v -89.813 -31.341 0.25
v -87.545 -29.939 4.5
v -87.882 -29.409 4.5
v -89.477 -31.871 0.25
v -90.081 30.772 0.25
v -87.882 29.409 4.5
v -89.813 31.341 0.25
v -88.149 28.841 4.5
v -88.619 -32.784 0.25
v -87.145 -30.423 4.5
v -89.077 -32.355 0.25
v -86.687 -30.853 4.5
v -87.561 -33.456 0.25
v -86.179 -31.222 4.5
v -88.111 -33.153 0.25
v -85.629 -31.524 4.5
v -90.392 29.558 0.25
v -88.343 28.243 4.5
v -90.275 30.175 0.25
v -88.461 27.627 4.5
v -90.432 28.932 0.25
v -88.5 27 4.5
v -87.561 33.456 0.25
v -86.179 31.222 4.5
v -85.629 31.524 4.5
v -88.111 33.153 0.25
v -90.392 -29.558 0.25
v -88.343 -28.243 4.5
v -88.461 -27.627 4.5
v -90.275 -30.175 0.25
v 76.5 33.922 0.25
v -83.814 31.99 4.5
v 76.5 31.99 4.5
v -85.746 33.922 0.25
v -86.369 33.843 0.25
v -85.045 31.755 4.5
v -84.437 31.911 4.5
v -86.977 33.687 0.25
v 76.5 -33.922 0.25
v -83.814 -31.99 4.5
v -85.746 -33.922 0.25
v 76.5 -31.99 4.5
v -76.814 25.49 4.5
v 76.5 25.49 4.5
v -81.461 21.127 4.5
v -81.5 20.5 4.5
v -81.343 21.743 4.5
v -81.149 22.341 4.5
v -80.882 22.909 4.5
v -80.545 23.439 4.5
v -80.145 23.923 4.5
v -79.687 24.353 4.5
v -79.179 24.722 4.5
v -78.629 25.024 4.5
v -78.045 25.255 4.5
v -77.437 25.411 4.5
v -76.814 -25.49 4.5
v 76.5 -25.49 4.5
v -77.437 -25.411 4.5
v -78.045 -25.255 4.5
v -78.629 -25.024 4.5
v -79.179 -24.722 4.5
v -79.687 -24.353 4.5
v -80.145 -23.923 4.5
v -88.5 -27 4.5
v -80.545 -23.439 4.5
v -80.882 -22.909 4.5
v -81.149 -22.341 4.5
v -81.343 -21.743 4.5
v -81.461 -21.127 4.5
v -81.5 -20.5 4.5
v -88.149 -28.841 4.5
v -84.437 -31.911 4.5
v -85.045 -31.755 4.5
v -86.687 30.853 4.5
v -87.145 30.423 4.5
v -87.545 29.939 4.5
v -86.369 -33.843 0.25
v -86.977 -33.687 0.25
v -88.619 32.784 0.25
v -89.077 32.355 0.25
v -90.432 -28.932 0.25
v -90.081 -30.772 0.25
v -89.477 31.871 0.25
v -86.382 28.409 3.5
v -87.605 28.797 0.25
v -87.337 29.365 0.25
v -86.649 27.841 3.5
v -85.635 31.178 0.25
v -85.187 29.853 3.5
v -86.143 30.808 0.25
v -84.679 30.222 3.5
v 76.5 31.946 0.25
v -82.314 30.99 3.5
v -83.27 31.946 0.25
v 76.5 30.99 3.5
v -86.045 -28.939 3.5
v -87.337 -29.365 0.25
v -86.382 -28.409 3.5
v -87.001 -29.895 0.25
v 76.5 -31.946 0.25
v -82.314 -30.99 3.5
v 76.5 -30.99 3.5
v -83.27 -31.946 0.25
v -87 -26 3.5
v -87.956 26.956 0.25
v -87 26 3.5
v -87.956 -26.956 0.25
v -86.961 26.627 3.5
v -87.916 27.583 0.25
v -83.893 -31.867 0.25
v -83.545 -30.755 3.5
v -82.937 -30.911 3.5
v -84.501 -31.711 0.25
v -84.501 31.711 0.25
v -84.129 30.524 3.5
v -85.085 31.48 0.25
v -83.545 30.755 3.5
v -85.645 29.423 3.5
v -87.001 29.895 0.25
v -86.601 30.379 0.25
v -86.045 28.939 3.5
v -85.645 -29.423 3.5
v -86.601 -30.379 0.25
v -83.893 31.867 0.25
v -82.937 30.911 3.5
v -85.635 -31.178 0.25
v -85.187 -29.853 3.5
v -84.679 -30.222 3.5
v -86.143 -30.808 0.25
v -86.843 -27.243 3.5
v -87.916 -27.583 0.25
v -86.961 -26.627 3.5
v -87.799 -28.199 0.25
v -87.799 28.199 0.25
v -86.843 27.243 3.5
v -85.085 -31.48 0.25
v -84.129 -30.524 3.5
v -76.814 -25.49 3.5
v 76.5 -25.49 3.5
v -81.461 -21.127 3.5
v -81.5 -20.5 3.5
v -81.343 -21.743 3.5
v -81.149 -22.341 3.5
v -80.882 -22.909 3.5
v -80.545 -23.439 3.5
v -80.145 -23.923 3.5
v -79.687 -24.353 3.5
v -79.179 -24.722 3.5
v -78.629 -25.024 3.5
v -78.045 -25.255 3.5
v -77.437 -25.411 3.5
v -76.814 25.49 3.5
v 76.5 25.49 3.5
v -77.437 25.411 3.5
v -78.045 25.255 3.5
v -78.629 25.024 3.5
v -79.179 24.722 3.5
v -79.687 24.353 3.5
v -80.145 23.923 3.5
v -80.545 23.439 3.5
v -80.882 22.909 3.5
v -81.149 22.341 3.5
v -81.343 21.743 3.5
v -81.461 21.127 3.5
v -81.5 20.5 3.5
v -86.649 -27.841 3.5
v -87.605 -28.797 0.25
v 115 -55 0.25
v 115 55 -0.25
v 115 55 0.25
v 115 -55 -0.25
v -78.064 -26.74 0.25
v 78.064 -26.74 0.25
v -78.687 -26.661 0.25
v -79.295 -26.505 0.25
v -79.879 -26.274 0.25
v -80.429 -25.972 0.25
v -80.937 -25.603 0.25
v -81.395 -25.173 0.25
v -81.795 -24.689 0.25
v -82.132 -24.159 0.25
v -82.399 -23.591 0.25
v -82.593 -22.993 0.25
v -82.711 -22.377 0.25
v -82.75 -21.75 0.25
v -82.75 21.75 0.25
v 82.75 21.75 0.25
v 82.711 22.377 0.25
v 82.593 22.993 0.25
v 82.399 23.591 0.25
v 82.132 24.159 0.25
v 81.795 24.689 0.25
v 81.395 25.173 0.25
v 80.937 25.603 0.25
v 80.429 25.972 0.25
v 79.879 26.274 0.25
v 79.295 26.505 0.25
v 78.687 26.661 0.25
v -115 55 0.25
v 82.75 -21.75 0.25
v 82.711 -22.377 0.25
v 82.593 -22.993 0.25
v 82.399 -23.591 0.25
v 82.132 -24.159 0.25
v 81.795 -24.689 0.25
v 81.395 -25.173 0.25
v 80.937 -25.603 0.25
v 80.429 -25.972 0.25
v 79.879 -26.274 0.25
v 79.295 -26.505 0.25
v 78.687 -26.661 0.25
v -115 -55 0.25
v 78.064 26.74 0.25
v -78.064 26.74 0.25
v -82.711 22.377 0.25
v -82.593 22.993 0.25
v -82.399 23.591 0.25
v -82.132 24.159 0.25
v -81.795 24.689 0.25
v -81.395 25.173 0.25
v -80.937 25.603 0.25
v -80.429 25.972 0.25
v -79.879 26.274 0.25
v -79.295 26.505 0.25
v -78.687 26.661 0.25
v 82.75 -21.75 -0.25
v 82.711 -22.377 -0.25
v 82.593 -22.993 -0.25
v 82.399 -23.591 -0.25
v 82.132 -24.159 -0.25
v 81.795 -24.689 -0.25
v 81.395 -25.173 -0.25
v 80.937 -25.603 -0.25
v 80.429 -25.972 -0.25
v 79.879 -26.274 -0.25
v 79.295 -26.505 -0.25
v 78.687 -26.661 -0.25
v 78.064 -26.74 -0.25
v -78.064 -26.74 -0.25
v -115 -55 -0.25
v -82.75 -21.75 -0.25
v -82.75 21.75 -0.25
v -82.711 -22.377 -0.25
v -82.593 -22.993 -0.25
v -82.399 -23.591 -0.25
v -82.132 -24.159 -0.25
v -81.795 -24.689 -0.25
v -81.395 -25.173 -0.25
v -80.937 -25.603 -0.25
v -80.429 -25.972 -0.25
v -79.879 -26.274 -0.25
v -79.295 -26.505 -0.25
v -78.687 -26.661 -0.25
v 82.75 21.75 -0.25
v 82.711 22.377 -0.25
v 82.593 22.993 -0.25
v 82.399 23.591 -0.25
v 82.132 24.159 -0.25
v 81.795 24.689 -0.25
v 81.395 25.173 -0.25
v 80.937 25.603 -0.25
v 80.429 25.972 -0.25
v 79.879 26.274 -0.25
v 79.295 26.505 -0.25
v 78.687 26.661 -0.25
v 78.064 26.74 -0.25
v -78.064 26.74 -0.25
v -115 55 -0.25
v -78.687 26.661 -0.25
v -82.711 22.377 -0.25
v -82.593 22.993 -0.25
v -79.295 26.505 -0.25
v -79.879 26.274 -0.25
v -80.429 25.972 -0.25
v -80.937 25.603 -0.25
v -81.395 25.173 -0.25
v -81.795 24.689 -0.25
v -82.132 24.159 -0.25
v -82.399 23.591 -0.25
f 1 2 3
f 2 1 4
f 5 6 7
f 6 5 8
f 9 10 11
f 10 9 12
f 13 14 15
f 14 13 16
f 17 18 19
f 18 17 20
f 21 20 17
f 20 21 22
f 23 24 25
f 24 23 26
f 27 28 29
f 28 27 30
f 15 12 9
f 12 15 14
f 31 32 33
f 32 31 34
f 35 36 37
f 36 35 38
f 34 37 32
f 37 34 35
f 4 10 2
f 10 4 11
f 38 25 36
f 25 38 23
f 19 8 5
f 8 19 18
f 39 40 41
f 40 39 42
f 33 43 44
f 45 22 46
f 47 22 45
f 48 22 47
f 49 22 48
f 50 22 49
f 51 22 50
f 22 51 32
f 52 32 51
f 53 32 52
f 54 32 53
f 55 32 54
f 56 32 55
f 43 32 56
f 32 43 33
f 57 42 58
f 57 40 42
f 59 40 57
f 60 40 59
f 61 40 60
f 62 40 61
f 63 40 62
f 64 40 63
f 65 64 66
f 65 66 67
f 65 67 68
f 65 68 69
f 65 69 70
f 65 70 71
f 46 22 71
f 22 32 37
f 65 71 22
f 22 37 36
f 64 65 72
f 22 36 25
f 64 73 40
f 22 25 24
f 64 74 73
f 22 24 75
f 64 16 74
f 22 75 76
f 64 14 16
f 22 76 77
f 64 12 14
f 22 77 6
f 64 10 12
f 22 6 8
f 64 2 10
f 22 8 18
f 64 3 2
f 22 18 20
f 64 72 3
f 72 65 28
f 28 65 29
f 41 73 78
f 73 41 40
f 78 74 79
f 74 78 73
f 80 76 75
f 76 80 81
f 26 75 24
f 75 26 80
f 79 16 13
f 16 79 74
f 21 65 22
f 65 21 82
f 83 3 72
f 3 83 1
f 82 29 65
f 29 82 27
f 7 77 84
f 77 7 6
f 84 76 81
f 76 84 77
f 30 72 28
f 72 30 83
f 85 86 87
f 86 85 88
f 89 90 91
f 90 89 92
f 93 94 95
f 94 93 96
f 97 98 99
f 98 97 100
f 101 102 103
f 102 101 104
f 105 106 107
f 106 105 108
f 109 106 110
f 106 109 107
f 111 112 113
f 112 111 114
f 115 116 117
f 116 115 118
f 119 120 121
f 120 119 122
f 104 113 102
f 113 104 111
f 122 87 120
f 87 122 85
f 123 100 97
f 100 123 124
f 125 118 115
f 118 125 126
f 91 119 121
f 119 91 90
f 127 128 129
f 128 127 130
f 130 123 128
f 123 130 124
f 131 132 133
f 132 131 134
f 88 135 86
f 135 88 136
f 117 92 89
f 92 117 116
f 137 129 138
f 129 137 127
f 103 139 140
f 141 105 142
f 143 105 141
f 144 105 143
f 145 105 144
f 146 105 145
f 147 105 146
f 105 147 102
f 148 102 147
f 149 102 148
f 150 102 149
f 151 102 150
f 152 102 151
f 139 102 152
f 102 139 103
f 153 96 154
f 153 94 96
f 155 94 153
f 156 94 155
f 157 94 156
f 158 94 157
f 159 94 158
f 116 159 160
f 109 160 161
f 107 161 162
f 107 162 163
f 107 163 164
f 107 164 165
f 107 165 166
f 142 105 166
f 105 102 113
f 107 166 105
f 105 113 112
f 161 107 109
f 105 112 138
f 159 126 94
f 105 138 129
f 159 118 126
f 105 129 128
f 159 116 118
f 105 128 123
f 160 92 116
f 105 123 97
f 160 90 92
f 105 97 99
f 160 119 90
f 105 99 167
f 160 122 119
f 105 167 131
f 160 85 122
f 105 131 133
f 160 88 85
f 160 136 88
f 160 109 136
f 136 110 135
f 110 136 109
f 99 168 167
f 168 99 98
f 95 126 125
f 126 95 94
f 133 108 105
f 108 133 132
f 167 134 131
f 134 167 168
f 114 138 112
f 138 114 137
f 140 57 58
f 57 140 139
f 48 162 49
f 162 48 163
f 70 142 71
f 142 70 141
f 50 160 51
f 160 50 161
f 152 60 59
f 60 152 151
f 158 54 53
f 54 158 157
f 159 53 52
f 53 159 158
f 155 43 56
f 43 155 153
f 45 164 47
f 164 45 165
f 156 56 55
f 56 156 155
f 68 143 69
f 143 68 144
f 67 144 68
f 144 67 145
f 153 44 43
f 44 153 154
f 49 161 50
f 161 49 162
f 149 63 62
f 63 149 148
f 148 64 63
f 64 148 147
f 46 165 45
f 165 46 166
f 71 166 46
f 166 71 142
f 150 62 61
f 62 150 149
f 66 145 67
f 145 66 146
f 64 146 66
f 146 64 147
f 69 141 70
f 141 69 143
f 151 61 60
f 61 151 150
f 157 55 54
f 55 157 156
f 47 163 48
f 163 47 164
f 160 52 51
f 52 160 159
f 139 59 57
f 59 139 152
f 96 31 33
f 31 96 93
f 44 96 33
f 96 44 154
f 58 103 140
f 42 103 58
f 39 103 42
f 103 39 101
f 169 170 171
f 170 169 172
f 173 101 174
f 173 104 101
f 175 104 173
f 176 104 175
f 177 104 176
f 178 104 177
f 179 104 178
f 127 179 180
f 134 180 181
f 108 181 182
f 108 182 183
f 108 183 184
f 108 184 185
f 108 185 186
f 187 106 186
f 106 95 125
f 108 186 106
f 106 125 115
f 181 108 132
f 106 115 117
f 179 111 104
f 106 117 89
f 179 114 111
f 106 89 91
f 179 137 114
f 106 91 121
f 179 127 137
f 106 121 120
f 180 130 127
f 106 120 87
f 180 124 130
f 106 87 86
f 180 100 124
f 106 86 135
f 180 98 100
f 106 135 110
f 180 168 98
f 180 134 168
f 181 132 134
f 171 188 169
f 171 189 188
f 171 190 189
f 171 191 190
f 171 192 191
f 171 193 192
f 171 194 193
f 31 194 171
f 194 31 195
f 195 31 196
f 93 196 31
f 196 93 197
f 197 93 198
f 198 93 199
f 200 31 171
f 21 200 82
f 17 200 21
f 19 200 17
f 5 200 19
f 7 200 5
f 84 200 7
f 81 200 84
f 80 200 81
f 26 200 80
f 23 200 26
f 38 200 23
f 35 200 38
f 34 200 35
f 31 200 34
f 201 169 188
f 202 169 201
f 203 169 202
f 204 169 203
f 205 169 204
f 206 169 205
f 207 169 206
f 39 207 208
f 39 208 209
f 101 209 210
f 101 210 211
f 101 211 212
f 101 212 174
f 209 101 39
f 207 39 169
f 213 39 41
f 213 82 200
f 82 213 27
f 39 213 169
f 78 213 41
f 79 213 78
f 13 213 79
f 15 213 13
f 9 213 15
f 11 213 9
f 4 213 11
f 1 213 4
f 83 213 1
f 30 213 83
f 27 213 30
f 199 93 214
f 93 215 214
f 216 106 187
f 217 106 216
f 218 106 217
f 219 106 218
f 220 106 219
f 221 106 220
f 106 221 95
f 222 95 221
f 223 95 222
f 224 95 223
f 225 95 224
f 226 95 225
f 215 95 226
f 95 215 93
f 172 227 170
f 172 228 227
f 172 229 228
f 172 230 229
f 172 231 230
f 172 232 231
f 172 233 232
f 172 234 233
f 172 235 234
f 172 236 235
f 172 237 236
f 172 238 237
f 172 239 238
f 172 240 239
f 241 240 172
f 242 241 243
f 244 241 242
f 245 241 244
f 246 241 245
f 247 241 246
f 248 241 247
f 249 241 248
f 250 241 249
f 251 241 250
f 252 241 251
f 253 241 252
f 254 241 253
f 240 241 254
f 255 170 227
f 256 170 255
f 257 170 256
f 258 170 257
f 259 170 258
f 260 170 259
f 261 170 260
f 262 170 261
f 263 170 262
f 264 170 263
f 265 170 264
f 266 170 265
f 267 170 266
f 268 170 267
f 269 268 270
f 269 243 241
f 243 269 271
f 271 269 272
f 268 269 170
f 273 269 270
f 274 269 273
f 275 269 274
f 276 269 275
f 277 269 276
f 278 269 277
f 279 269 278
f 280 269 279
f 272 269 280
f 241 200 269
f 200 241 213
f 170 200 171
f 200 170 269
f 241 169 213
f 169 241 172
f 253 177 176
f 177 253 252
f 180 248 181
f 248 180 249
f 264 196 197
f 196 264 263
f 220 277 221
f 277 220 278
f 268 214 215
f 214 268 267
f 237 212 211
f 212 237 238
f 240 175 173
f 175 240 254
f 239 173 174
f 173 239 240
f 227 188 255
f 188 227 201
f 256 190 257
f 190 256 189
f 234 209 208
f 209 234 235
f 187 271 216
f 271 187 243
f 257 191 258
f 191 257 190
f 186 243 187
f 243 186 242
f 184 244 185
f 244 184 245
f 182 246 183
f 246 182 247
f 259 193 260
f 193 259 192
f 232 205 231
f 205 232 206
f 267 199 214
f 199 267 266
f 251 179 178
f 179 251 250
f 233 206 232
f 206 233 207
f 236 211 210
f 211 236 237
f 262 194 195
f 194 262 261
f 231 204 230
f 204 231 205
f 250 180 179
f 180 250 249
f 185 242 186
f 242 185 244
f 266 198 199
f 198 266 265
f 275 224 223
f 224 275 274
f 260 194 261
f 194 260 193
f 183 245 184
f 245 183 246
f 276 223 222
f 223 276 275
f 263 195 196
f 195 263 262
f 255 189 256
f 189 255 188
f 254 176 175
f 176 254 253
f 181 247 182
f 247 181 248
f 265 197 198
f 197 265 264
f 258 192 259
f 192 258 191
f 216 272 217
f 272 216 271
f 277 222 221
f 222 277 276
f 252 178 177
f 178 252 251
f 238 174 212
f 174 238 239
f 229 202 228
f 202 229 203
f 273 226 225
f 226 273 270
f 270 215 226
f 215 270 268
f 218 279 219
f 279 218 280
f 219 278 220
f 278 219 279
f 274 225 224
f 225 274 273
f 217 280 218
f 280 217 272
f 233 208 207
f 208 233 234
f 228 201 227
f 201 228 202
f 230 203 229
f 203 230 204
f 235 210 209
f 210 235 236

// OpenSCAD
$fn=50;

duct_width = 56;
duct_length = 168;
duct_rim = 5;
duct_rim_thickness = 2.5;
duct_tol = 1.0;

adaptor_base_thickness = 0.5;
adaptor_thickness = 1.0;

// Simpler code with same result
module roundedcube(xx, yy, height, radius, center=false, centerxy=false)
{
    translate([(center||centerxy)?-xx/2:0,(center||centerxy)?-yy/2:0,center?0:height/2])
    hull()
    {
        translate([radius,radius,0])
        cylinder(height,radius,radius,true);

        translate([xx-radius,radius,0])
        cylinder(height,radius,radius,true);

        translate([xx-radius,yy-radius,0])
        cylinder(height,radius,radius,true);

        translate([radius,yy-radius,0])
        cylinder(height,radius,radius,true);
    }
}

if (0)
% roundedcube(duct_length, duct_width, 0.8, 5, center=true);

union()
{
    difference()
    {
        cube([230, 110, 0.5], center = true);
        roundedcube(duct_length-duct_rim/2, duct_width-duct_rim/2, 1, 5, center=true);
    }
    difference()
    {
        hull()
        {
            roundedcube(duct_length+duct_rim+duct_tol+adaptor_thickness*2+5, duct_width+duct_rim+duct_tol+adaptor_thickness+5, 0.1, 5, centerxy=true);
            roundedcube(duct_length+duct_rim+duct_tol+adaptor_thickness*2+1, duct_width+duct_rim+duct_tol+adaptor_thickness+1, duct_rim_thickness+duct_tol+adaptor_thickness, 5, centerxy=true);
        }
        if (1)
        hull()
        {
            roundedcube(duct_length+duct_rim+duct_tol+2, duct_width+duct_rim+duct_tol+2, 0.1, 5, centerxy=true);
            roundedcube(duct_length+duct_rim+duct_tol, duct_width+duct_rim+duct_tol, duct_rim_thickness+duct_tol, 5, centerxy=true);
        }
        roundedcube(duct_length-5, duct_width-5, 10, 5, center=true);
        translate([(duct_length+duct_rim)/2,0,10/2])
            cube([duct_rim*2+10,duct_width+duct_rim+10,10],center=true);
    }
}
